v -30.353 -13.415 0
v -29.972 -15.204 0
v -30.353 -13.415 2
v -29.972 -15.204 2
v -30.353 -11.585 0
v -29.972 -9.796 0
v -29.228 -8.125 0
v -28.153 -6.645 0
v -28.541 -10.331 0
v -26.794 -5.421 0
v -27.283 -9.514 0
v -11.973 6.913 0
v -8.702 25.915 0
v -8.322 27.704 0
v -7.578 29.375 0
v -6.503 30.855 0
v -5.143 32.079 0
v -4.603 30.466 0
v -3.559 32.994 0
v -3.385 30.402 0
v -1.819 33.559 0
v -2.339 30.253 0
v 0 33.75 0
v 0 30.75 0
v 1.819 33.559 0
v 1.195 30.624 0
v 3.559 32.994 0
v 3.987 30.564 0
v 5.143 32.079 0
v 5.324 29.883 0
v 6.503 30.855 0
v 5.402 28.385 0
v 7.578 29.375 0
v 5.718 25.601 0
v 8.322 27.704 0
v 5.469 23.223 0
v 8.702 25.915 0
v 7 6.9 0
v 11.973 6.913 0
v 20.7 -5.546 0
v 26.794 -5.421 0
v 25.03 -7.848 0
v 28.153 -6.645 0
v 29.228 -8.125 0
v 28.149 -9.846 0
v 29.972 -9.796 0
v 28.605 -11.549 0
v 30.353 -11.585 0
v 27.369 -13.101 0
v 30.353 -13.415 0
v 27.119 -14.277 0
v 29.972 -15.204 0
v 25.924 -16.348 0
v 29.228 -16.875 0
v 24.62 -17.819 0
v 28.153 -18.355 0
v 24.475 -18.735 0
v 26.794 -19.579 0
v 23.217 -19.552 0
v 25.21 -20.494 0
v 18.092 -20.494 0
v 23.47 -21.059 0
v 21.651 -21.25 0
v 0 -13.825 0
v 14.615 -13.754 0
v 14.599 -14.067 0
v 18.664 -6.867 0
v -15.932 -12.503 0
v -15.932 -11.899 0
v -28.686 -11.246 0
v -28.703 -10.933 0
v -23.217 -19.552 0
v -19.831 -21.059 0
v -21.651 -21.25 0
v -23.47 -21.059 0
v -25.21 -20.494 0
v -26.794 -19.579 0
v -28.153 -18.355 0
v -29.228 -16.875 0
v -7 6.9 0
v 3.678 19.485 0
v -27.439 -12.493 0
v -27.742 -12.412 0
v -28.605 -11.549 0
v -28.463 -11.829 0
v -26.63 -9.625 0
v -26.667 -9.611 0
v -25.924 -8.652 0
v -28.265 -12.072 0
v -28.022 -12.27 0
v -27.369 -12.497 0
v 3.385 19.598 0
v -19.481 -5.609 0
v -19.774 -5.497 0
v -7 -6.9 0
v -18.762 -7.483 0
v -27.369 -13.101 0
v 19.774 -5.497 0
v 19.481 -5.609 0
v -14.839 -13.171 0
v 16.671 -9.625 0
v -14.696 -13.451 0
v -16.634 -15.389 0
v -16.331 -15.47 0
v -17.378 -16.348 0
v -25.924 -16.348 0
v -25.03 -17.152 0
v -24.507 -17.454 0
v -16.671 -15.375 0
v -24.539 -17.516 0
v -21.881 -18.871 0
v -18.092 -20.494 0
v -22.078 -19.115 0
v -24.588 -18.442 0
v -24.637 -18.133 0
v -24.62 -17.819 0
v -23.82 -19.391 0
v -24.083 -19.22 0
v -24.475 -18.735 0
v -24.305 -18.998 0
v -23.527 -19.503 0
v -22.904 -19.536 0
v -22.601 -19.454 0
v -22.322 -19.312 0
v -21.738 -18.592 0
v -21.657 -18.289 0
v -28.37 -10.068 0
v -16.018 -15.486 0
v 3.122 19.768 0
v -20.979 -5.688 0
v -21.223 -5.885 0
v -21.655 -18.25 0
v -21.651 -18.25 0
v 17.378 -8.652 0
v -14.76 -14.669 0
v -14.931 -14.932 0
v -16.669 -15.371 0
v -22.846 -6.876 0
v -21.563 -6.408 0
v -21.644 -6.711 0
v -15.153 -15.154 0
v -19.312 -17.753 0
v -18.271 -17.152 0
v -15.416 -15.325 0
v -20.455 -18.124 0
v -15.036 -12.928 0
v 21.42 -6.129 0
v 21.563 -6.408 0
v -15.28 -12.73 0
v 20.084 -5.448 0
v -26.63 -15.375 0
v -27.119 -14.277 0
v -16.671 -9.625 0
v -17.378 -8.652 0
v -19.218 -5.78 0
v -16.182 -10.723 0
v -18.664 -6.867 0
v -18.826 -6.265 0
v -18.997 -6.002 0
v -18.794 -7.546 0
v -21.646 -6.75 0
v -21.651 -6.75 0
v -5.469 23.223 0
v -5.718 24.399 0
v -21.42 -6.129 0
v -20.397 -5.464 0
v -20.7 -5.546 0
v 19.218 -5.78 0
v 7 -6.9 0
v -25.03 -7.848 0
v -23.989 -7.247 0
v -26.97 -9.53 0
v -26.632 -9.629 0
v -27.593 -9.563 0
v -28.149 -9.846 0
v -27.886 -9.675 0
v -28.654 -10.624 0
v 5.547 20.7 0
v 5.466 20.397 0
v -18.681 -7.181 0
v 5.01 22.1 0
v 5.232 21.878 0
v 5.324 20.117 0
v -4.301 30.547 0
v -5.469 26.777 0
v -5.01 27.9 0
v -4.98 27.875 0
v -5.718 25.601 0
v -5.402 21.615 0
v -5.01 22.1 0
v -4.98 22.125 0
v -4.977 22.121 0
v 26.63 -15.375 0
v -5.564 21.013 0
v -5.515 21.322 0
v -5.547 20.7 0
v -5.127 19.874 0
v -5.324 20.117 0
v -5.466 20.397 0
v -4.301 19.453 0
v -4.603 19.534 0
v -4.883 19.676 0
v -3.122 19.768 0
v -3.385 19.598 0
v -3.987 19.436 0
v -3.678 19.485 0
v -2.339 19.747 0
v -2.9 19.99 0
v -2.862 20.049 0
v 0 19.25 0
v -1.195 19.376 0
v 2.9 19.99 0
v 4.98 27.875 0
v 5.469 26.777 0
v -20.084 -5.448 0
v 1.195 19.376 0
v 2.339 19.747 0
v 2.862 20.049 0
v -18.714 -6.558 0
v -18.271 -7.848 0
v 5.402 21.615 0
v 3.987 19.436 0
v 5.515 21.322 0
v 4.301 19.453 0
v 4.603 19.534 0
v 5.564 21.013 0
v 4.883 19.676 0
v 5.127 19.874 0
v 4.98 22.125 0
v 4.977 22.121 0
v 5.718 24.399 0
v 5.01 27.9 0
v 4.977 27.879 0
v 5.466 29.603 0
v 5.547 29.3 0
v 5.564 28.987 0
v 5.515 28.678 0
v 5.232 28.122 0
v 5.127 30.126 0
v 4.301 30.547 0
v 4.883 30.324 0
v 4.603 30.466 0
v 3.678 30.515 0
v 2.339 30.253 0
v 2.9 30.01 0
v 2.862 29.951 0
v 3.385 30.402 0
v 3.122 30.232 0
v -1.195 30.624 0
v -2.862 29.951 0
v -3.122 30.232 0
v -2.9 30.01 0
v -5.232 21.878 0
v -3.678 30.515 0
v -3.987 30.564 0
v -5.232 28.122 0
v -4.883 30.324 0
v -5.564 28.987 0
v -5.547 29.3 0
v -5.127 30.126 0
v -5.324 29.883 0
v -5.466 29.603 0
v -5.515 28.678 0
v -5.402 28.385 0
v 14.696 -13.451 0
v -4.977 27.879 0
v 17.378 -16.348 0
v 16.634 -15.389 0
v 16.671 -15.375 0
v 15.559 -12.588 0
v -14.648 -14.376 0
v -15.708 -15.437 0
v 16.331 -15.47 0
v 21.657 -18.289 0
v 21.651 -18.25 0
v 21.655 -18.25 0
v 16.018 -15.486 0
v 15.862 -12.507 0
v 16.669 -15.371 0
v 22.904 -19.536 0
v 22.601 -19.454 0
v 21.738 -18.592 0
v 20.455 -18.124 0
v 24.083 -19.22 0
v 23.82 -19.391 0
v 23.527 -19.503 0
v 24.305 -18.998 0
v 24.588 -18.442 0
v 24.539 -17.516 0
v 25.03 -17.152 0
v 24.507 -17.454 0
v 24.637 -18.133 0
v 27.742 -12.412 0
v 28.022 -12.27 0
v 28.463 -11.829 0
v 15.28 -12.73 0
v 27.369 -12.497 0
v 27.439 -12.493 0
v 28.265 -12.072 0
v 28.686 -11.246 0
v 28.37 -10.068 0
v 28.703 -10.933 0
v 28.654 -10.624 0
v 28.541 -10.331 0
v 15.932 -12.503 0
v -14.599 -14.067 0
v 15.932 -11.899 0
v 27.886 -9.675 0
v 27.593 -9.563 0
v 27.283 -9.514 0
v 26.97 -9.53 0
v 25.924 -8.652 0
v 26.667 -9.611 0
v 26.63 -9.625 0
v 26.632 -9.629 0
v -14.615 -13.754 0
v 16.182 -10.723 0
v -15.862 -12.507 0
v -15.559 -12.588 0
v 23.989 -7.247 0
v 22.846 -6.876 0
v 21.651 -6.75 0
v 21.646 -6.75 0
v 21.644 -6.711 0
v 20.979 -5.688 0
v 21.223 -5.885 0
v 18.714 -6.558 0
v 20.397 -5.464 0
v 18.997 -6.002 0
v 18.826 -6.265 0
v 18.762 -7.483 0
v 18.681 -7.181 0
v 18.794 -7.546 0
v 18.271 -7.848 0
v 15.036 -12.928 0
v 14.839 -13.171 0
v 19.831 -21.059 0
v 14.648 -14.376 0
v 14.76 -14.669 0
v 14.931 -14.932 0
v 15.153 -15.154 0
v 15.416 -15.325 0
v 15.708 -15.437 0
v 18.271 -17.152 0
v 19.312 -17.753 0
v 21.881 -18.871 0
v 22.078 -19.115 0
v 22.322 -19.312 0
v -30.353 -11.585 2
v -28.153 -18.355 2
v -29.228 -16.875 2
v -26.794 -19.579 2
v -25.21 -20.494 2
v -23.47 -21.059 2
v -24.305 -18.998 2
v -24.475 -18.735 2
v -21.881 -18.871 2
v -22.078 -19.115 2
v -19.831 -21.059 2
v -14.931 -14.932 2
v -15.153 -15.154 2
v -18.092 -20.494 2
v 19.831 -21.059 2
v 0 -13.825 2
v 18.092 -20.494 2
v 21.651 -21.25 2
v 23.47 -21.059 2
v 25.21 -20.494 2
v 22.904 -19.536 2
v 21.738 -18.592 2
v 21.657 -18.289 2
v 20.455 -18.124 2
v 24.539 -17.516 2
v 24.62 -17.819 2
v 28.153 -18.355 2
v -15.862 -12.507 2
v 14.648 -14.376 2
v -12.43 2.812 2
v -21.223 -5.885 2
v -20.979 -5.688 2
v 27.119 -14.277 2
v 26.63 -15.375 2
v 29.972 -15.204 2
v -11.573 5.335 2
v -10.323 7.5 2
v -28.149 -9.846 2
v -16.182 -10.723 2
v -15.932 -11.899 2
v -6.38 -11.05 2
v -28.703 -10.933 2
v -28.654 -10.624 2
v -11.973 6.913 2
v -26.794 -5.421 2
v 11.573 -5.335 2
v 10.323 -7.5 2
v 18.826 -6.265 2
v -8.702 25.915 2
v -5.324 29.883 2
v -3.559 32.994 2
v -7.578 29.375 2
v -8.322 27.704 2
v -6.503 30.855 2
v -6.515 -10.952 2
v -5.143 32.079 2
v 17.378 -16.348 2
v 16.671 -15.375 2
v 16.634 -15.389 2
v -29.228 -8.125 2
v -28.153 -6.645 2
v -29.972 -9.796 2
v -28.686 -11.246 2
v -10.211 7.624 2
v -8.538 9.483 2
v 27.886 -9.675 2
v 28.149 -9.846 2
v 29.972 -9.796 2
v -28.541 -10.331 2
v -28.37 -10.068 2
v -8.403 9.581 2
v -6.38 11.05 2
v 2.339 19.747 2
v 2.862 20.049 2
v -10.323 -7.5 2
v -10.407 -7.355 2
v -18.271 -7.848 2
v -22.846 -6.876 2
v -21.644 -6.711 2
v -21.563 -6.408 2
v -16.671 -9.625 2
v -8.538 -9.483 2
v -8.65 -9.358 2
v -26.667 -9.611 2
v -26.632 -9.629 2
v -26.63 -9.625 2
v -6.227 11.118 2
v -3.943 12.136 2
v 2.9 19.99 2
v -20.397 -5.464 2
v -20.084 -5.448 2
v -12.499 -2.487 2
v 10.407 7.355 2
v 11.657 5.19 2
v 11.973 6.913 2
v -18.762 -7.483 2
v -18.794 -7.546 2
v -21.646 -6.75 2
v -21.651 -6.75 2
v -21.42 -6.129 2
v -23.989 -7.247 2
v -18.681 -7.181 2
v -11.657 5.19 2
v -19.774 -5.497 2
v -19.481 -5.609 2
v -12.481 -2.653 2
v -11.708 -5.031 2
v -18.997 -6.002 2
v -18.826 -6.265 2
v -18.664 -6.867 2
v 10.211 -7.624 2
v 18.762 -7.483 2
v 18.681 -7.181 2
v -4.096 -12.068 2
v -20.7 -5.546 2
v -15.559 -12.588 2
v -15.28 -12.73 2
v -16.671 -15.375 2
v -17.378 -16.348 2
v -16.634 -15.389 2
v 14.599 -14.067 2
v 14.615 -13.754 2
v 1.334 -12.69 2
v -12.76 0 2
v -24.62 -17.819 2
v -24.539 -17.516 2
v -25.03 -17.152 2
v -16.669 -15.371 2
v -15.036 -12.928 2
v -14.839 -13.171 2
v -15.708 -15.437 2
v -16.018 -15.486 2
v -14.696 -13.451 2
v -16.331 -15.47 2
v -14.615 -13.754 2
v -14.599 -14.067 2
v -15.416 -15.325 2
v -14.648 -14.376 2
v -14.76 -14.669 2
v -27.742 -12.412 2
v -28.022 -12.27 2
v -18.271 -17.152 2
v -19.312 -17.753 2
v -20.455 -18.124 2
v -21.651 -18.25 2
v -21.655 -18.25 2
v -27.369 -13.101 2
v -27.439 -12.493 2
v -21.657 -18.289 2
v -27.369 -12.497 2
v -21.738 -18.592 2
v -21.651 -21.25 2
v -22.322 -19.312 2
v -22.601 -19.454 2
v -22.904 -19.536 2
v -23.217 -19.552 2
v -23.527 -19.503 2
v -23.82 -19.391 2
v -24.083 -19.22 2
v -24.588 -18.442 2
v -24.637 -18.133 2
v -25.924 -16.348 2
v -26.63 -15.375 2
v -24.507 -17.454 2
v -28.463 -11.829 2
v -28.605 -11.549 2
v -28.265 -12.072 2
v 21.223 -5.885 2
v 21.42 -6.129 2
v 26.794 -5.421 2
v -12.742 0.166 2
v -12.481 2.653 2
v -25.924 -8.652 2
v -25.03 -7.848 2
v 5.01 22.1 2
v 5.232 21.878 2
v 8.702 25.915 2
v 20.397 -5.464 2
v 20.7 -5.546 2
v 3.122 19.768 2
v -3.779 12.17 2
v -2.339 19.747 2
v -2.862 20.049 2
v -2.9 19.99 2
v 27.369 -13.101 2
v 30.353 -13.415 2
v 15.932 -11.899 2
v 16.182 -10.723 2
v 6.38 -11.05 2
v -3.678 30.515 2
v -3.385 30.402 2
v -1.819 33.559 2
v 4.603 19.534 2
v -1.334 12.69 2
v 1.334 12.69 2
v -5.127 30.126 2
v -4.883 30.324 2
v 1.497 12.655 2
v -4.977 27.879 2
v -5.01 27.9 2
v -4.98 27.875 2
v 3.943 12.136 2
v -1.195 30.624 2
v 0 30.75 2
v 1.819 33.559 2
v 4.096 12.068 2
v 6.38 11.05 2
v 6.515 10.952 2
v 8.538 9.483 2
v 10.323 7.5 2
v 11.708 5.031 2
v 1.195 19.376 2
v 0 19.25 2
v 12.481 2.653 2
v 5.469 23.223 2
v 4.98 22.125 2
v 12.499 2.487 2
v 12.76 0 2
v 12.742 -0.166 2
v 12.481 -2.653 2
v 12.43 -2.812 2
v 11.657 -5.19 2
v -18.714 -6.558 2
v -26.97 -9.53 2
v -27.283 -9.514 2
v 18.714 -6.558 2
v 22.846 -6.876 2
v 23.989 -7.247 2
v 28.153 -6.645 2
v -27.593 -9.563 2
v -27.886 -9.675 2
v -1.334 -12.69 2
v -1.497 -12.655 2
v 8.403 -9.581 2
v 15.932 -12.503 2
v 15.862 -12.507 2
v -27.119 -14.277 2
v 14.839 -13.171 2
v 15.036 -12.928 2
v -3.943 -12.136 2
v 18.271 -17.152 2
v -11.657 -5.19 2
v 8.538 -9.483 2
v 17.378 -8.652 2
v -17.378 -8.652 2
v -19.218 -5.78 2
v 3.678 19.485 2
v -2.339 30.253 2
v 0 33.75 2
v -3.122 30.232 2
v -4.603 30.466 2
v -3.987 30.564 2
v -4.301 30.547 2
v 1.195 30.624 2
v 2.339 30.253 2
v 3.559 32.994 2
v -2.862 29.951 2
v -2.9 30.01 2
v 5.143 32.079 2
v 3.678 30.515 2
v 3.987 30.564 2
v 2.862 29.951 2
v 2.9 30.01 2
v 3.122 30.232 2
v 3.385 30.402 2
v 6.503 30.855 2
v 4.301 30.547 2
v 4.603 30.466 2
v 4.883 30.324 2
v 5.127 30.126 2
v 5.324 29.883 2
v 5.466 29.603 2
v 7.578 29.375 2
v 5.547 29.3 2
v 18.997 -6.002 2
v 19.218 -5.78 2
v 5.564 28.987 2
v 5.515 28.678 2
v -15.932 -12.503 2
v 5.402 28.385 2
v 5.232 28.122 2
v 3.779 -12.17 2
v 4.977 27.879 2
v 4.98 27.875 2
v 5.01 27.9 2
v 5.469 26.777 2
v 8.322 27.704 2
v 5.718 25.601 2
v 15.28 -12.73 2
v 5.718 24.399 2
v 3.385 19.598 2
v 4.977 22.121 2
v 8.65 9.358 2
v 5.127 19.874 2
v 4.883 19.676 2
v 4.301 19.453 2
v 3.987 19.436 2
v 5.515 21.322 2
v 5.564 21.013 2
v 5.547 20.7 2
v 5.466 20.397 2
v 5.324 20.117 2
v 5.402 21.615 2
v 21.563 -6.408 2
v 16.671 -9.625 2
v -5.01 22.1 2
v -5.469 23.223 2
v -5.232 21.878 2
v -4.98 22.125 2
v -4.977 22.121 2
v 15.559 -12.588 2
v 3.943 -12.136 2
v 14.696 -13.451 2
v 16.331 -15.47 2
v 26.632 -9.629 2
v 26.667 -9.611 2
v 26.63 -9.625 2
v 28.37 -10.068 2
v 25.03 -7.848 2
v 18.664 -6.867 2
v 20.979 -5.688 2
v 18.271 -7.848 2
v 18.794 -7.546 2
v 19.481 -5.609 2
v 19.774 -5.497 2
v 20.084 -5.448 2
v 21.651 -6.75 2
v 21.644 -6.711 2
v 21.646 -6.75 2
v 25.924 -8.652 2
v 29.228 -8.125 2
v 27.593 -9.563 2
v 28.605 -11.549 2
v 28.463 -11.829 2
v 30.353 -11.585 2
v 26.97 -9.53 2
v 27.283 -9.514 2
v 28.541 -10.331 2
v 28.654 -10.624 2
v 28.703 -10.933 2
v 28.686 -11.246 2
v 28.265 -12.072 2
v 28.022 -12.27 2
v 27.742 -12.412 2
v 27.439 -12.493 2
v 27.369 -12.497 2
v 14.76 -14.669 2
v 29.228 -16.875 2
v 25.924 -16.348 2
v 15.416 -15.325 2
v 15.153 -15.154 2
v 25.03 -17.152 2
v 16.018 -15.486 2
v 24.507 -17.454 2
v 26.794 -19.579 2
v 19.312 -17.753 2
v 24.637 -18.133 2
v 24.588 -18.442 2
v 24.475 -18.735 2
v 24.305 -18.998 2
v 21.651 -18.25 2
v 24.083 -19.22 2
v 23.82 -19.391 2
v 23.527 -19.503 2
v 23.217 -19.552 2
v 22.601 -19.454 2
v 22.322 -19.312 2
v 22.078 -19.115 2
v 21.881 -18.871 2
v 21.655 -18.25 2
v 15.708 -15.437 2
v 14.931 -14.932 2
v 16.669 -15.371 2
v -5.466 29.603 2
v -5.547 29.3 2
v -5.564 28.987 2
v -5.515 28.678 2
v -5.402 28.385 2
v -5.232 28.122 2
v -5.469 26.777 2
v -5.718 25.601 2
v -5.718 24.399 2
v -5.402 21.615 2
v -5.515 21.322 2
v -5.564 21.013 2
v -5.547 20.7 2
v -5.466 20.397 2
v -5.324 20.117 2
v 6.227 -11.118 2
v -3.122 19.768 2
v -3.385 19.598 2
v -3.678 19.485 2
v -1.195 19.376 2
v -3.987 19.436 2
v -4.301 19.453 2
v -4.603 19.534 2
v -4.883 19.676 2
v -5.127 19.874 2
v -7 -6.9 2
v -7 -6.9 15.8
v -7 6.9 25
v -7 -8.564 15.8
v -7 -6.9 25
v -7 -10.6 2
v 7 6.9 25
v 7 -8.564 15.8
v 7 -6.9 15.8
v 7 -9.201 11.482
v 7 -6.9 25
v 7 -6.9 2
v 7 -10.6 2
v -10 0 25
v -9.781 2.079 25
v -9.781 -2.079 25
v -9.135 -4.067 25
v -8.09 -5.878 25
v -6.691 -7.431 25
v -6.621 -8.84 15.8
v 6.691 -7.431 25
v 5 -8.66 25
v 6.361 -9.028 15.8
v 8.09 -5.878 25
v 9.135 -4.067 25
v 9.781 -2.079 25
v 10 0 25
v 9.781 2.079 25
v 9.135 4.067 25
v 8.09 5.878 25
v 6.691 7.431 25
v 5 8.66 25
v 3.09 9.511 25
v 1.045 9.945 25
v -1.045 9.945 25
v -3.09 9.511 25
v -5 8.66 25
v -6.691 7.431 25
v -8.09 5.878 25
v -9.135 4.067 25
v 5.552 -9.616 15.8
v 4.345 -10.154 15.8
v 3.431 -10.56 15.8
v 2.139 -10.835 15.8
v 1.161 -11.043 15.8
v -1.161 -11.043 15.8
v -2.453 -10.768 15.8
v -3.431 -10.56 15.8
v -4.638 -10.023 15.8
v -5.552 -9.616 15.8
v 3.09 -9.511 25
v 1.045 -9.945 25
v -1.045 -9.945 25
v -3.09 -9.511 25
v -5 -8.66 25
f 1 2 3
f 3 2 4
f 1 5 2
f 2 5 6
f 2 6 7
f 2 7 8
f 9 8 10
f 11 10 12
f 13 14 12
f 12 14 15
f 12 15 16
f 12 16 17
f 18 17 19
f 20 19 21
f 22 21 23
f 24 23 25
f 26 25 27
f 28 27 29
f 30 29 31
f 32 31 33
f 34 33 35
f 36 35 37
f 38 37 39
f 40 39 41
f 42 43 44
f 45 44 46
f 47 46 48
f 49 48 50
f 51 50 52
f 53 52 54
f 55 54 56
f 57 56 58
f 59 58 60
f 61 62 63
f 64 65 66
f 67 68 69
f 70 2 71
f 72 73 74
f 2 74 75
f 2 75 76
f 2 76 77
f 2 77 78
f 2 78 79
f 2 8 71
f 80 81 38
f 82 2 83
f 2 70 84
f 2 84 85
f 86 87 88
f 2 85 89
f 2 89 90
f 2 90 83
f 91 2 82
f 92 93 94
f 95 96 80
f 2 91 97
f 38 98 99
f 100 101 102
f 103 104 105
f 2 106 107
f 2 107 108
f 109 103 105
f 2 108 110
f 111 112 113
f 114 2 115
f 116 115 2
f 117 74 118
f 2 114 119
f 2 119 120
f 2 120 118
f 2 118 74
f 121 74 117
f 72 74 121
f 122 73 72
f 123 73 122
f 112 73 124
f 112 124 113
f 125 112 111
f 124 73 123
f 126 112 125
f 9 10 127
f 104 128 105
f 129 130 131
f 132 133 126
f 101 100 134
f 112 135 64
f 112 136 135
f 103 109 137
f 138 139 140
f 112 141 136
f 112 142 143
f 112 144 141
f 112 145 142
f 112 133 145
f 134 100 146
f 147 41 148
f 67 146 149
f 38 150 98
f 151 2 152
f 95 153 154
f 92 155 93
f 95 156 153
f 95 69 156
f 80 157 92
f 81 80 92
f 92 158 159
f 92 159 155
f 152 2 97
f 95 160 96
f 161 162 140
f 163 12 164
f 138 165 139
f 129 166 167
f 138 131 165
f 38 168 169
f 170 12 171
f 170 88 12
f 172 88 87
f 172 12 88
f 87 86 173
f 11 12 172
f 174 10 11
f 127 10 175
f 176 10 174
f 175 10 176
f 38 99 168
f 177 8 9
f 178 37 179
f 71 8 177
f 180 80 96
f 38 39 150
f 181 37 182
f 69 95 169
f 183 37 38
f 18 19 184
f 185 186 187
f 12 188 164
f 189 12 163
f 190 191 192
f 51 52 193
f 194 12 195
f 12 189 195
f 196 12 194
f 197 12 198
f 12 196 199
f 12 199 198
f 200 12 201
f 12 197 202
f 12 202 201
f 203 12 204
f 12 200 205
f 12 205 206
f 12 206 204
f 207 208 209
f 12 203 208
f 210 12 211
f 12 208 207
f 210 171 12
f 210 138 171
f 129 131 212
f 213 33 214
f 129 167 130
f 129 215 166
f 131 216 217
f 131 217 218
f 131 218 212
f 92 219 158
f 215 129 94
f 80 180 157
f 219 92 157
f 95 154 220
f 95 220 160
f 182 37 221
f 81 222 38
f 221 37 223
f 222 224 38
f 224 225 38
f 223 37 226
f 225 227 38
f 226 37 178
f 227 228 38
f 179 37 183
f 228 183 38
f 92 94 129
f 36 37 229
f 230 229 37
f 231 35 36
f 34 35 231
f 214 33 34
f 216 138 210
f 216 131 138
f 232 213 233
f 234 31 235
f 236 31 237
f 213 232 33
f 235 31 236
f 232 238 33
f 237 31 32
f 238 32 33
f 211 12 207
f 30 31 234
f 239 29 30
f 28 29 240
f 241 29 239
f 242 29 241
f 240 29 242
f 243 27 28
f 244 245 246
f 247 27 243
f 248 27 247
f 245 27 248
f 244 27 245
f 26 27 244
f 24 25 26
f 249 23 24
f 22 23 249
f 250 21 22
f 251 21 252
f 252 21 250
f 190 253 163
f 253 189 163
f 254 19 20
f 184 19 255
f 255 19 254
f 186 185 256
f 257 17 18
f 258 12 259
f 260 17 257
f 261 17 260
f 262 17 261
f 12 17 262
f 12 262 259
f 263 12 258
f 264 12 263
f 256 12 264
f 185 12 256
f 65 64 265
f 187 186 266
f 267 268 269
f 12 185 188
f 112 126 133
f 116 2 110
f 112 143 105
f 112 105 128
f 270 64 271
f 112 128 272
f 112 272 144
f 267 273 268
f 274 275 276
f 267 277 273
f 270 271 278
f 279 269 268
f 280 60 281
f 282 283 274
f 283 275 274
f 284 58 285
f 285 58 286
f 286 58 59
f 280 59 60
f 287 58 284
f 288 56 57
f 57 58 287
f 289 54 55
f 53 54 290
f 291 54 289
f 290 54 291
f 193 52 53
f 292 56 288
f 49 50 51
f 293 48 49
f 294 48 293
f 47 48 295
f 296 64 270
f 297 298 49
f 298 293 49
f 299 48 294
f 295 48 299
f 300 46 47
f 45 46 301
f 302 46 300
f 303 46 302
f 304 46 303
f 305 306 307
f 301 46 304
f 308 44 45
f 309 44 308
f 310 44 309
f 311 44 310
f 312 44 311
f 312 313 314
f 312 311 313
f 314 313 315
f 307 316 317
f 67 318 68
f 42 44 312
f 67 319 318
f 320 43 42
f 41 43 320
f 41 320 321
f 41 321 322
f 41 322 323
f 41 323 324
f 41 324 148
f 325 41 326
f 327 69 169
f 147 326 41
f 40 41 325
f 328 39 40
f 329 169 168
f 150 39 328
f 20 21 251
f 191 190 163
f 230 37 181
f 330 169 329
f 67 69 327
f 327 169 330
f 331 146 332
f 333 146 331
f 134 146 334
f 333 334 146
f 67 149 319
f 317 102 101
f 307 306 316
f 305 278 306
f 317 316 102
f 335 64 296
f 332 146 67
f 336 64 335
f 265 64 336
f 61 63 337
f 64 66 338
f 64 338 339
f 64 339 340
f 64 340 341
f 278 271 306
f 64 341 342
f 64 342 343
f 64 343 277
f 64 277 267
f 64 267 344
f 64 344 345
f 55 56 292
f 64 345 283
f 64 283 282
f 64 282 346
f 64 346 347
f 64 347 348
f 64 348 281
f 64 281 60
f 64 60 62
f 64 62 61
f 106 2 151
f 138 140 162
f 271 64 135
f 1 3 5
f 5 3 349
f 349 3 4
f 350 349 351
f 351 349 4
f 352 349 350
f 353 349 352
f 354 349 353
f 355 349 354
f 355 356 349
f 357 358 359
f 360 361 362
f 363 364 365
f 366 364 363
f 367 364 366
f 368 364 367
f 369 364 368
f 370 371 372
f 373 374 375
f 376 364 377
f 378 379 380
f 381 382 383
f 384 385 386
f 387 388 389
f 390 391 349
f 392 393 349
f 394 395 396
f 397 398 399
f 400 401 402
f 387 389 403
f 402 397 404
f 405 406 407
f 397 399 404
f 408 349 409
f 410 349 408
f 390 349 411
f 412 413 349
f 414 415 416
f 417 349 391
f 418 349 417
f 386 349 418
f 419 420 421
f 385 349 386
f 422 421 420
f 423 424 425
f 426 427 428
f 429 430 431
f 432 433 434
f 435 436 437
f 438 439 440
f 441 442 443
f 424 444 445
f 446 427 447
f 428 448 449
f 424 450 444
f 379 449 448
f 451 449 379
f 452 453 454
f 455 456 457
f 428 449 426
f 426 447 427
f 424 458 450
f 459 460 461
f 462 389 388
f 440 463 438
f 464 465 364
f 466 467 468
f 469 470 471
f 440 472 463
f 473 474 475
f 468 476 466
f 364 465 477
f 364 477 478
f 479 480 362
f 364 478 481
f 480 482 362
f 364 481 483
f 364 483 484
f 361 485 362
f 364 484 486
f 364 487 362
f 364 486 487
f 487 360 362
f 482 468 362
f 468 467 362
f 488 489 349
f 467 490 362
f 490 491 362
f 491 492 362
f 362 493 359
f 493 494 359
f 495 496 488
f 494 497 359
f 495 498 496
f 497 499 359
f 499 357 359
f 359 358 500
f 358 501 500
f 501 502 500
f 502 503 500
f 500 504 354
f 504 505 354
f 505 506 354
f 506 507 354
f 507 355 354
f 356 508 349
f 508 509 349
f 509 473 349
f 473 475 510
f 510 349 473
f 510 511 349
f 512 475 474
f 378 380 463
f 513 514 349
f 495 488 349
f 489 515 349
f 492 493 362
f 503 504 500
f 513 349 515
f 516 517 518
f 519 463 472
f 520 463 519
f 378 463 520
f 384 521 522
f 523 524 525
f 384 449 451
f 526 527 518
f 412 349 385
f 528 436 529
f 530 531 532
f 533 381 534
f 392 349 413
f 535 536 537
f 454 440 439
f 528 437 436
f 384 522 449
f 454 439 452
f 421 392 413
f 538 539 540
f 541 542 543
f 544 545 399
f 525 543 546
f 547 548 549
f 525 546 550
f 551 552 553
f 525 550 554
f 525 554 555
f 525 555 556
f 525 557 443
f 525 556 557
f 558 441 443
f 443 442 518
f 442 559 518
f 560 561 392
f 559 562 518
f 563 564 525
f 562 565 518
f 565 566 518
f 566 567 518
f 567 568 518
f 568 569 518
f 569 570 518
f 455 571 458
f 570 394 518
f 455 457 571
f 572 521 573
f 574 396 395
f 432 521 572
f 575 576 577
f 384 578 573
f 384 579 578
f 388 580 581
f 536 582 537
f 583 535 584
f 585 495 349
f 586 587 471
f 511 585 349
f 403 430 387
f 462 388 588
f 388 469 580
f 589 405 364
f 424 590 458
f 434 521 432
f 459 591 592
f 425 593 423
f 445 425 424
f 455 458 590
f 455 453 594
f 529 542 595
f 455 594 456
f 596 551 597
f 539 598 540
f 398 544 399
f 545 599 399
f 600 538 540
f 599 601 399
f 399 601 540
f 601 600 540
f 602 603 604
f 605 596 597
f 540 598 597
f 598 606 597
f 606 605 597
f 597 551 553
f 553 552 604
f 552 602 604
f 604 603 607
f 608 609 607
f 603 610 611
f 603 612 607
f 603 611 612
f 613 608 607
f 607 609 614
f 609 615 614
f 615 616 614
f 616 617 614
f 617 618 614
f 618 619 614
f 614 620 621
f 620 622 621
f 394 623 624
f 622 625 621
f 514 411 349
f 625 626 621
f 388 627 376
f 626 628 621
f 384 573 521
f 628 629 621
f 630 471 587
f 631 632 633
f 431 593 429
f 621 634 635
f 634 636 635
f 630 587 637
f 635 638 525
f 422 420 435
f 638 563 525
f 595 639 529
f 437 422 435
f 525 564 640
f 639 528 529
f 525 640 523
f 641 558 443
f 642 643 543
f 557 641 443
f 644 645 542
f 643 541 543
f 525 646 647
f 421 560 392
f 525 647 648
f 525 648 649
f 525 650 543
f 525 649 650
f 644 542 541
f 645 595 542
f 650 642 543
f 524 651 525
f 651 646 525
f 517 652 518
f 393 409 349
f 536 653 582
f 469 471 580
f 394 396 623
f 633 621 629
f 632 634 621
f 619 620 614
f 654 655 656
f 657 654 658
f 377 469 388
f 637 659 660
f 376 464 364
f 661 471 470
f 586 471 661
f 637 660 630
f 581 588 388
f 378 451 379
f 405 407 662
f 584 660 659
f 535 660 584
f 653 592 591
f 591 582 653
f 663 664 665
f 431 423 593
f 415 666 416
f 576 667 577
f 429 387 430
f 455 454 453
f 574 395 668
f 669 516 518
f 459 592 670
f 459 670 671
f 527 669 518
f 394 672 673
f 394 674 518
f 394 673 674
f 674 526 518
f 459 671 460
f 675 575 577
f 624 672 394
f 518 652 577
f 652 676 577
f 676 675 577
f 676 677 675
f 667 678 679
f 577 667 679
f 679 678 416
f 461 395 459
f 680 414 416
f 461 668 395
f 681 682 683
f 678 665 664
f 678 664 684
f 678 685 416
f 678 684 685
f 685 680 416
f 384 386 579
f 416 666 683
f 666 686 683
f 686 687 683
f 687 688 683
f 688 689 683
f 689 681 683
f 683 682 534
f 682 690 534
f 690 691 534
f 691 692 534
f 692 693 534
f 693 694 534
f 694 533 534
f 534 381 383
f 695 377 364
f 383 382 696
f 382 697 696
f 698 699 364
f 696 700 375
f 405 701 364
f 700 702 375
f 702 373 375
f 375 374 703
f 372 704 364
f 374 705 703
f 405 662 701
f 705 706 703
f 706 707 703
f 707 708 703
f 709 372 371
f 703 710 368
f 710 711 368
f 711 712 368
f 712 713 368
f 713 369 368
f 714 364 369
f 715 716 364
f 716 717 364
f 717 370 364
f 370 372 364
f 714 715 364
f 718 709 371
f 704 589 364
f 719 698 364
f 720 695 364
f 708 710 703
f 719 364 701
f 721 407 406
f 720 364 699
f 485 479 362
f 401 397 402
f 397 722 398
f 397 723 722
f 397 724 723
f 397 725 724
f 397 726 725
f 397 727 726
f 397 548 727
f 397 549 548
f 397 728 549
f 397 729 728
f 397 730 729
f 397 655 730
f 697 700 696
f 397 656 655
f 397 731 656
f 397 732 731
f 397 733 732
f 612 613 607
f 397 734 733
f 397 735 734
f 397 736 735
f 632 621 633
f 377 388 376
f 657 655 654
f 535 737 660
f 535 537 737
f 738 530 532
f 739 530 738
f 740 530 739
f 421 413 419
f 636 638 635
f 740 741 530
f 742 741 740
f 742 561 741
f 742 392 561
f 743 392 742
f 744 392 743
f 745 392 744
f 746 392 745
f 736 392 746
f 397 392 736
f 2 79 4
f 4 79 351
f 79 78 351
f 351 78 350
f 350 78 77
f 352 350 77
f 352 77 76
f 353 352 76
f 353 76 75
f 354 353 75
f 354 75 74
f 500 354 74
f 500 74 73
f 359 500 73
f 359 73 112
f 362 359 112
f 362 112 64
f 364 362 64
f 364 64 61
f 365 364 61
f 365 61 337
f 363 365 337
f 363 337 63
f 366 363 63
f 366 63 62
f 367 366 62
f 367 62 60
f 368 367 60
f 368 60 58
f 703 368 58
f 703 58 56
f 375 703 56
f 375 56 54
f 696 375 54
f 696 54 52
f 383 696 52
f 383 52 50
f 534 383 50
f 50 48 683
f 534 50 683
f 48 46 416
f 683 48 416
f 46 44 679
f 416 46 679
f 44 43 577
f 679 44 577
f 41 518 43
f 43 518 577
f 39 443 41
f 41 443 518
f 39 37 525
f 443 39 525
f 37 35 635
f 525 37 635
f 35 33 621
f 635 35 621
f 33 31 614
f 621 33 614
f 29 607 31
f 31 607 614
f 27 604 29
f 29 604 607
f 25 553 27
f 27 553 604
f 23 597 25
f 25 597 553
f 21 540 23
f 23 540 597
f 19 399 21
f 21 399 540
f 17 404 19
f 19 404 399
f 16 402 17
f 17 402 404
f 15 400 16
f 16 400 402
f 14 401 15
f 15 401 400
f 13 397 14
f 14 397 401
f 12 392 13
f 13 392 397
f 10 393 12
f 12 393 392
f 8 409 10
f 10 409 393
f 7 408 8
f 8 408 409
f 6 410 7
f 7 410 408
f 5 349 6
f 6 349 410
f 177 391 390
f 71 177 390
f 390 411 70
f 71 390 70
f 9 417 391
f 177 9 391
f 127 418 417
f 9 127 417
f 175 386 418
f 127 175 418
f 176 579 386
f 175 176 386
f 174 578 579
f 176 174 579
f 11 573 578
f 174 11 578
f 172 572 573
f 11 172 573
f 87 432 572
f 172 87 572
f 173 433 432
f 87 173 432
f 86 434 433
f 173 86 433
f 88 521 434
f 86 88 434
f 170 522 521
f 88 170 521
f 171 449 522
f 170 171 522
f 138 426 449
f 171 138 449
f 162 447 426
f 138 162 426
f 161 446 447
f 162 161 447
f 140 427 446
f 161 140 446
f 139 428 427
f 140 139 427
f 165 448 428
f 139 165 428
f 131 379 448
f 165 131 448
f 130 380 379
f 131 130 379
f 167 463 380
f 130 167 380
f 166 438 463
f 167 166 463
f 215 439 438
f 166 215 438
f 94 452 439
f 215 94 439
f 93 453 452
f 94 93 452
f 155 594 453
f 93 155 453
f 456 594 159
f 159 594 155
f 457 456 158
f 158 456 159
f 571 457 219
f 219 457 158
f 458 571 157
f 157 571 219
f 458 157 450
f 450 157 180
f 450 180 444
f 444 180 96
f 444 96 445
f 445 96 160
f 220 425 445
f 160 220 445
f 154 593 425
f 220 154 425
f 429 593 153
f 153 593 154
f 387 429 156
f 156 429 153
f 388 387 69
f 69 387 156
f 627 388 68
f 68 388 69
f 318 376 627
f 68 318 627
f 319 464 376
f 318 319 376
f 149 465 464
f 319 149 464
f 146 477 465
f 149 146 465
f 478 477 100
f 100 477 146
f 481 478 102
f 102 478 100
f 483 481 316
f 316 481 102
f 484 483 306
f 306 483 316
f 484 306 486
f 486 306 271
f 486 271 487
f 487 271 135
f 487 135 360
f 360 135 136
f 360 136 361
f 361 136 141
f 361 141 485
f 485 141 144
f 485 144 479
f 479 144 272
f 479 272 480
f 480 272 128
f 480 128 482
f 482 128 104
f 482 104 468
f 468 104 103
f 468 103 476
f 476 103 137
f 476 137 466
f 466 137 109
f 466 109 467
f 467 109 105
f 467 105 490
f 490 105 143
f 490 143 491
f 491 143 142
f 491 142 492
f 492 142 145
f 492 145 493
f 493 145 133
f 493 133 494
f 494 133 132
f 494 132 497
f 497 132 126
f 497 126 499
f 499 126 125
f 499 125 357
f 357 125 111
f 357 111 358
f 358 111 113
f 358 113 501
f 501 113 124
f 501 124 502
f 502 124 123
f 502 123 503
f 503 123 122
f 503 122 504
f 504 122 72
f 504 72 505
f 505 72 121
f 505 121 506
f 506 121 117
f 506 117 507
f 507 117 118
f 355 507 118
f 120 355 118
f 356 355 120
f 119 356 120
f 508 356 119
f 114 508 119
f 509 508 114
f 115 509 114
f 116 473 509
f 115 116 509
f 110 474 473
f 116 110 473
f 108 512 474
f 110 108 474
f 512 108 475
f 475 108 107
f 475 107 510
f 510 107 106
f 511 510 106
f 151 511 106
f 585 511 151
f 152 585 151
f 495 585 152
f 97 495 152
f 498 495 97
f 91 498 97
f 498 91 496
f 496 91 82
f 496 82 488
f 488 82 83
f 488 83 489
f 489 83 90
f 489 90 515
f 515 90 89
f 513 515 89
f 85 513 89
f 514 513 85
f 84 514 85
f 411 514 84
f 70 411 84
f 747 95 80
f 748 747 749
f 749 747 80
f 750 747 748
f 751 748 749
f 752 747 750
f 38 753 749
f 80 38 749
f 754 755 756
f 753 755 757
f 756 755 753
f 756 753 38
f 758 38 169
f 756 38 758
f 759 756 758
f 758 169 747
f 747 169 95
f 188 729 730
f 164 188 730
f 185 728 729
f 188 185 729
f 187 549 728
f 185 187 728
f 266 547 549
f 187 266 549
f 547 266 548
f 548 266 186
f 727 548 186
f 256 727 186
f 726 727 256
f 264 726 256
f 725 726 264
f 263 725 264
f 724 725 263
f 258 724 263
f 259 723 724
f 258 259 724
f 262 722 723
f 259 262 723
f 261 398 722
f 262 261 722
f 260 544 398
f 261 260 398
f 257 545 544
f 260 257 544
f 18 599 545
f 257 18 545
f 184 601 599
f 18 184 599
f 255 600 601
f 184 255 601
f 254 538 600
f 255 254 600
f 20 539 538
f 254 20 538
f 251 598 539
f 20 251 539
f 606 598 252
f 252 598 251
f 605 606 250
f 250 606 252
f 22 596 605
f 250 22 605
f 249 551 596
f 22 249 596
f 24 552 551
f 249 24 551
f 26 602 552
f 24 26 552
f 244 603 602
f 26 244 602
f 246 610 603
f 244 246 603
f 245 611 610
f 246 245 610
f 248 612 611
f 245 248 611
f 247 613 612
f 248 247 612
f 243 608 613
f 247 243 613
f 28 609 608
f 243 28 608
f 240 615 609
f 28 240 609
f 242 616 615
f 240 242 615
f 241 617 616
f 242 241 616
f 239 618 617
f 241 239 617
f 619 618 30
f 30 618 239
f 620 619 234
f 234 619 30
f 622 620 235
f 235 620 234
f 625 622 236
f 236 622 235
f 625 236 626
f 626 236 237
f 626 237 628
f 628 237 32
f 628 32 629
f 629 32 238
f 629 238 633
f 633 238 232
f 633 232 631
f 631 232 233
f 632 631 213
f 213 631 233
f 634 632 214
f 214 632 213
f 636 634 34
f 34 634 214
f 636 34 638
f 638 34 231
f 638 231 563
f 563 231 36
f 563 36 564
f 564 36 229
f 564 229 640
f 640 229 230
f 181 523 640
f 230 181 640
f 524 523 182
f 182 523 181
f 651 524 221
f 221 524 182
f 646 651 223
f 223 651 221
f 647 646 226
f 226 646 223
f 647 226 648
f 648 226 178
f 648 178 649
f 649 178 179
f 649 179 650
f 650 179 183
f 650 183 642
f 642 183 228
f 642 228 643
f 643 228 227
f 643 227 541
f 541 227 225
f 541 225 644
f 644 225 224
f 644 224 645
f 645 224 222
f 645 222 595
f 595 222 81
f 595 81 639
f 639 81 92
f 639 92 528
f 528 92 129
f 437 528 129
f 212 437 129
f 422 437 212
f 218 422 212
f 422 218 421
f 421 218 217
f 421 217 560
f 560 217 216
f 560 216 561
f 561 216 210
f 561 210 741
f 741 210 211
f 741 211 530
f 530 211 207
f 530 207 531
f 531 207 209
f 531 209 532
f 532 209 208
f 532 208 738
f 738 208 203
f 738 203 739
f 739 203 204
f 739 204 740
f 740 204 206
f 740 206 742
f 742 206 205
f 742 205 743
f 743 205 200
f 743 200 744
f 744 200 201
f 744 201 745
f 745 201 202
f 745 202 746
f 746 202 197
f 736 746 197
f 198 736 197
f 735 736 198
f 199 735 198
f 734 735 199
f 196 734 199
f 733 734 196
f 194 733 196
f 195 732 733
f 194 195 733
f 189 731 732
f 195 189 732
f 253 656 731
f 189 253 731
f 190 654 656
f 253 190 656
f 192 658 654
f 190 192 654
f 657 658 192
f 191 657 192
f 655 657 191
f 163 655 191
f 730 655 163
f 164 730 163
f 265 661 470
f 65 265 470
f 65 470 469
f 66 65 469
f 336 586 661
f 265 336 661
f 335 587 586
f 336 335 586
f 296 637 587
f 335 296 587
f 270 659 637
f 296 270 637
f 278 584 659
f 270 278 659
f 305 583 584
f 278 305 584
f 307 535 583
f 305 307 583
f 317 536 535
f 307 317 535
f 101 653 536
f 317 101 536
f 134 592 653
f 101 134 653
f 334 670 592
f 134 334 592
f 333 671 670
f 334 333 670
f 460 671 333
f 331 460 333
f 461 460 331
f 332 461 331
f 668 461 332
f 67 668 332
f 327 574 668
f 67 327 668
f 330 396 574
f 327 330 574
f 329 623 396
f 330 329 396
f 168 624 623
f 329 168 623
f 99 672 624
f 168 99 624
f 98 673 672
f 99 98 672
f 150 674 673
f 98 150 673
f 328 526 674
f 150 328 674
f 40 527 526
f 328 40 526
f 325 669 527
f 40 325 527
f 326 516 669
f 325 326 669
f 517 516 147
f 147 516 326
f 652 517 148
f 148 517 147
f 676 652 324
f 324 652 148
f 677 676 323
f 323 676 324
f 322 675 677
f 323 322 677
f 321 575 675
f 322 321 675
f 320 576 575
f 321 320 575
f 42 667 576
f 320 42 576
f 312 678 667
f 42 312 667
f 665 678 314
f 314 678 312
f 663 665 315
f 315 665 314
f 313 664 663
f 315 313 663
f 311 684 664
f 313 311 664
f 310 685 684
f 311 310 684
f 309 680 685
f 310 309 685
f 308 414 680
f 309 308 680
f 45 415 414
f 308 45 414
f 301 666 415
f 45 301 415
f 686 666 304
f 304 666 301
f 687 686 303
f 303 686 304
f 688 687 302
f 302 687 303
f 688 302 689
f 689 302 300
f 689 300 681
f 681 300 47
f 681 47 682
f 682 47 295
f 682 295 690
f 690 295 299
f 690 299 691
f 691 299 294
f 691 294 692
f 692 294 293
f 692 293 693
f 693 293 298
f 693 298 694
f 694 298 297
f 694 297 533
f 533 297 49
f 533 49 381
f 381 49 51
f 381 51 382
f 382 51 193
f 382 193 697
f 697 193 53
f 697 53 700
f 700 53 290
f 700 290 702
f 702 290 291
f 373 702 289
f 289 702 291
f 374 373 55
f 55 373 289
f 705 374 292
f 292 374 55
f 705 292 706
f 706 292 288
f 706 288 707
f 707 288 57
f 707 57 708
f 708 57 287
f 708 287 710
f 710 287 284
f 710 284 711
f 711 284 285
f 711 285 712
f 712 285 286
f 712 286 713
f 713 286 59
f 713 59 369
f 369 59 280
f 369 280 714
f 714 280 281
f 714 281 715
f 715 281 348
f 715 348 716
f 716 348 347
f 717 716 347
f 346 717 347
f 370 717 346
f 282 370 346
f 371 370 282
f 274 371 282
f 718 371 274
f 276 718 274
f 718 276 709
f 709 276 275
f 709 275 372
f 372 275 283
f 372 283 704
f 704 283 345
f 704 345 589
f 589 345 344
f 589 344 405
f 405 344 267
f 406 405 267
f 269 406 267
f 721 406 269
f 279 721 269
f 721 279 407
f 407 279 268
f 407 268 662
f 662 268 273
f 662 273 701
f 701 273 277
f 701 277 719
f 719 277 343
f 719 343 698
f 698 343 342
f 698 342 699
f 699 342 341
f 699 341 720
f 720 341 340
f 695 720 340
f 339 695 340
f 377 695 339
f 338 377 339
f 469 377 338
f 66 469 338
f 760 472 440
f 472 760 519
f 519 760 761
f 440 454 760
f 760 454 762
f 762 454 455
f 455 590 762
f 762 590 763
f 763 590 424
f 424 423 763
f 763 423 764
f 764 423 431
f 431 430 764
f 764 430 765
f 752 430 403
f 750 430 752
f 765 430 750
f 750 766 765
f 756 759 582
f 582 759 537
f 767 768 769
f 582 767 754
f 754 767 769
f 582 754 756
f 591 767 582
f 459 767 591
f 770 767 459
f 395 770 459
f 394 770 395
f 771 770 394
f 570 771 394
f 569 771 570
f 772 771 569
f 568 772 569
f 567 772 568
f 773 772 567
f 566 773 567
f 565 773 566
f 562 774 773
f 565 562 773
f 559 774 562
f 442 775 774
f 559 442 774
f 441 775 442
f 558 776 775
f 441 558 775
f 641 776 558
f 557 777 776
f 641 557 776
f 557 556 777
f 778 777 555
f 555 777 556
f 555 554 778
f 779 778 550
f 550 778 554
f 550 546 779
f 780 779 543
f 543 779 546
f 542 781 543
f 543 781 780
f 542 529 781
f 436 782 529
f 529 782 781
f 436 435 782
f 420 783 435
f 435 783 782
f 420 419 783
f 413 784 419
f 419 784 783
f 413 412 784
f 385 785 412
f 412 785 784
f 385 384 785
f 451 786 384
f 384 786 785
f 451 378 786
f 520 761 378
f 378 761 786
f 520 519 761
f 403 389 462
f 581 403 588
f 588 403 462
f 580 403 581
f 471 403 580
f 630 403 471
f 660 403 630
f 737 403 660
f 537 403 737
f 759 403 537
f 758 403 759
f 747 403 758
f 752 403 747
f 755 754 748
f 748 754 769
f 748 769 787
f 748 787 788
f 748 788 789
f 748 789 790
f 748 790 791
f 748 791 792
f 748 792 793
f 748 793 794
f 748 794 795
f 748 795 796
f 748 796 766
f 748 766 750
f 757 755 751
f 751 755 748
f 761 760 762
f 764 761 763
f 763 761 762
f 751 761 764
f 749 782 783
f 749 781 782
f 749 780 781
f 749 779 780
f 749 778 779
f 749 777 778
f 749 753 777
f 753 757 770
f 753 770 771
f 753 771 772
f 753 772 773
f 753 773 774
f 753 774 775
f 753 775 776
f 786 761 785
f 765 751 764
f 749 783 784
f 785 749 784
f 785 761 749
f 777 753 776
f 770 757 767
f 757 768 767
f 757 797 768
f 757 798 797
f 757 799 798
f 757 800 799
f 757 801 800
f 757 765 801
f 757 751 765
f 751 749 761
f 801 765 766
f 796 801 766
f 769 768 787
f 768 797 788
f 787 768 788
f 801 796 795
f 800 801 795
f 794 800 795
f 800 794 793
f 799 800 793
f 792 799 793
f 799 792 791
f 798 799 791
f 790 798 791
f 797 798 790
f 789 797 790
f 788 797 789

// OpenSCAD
//radius of cone bottom in mm.
base=[13,2,0];

//Size of bolt holes in mm.
holes=11.5;

//Number of feet on the base.
feet=3; 

//Distance in mm to from the center to the bolt holes.
range=25; 

//Resolution of 3D printer in mm.
$fs=0.2;

hole=[14,12.3+1.5,72];



 


difference(){
union(){
cylinder (r2=10,r1=base[0],h=25);
for (turn=[0:360/feet:359]){
  rotate([ 0,0,turn-30]){
   difference(){
	hull(){   
     cylinder (r=base[0],h=base[1]);
     translate ([range,0,0]) cylinder (r=3+(holes/2),h=base[1]);
    }
translate ([range,0,-1]) 
union(){
	cylinder (r=holes/2,h=base[1]*2);
for ( i = [0 : 3] ){rotate([0,0,45+(90*i)]) translate([(holes/2),0,0])
cylinder(r=1.5,h=base[1]*2);} //4 notches for suckers.
}
   }
  }
 }
}
translate([-hole[0]/2,-hole[1]/2,-0.1]) cube (hole);
translate([-hole[0]/2,-hole[1]/2,base[1]])
translate([0,1,0]) rotate([90,0,0]) cube (hole);
}


//translate([-hole[0]/2,-hole[1]/2,base[1]]) rotate([135,0,0]) #cube ([hole[0],hole[1],10]);
